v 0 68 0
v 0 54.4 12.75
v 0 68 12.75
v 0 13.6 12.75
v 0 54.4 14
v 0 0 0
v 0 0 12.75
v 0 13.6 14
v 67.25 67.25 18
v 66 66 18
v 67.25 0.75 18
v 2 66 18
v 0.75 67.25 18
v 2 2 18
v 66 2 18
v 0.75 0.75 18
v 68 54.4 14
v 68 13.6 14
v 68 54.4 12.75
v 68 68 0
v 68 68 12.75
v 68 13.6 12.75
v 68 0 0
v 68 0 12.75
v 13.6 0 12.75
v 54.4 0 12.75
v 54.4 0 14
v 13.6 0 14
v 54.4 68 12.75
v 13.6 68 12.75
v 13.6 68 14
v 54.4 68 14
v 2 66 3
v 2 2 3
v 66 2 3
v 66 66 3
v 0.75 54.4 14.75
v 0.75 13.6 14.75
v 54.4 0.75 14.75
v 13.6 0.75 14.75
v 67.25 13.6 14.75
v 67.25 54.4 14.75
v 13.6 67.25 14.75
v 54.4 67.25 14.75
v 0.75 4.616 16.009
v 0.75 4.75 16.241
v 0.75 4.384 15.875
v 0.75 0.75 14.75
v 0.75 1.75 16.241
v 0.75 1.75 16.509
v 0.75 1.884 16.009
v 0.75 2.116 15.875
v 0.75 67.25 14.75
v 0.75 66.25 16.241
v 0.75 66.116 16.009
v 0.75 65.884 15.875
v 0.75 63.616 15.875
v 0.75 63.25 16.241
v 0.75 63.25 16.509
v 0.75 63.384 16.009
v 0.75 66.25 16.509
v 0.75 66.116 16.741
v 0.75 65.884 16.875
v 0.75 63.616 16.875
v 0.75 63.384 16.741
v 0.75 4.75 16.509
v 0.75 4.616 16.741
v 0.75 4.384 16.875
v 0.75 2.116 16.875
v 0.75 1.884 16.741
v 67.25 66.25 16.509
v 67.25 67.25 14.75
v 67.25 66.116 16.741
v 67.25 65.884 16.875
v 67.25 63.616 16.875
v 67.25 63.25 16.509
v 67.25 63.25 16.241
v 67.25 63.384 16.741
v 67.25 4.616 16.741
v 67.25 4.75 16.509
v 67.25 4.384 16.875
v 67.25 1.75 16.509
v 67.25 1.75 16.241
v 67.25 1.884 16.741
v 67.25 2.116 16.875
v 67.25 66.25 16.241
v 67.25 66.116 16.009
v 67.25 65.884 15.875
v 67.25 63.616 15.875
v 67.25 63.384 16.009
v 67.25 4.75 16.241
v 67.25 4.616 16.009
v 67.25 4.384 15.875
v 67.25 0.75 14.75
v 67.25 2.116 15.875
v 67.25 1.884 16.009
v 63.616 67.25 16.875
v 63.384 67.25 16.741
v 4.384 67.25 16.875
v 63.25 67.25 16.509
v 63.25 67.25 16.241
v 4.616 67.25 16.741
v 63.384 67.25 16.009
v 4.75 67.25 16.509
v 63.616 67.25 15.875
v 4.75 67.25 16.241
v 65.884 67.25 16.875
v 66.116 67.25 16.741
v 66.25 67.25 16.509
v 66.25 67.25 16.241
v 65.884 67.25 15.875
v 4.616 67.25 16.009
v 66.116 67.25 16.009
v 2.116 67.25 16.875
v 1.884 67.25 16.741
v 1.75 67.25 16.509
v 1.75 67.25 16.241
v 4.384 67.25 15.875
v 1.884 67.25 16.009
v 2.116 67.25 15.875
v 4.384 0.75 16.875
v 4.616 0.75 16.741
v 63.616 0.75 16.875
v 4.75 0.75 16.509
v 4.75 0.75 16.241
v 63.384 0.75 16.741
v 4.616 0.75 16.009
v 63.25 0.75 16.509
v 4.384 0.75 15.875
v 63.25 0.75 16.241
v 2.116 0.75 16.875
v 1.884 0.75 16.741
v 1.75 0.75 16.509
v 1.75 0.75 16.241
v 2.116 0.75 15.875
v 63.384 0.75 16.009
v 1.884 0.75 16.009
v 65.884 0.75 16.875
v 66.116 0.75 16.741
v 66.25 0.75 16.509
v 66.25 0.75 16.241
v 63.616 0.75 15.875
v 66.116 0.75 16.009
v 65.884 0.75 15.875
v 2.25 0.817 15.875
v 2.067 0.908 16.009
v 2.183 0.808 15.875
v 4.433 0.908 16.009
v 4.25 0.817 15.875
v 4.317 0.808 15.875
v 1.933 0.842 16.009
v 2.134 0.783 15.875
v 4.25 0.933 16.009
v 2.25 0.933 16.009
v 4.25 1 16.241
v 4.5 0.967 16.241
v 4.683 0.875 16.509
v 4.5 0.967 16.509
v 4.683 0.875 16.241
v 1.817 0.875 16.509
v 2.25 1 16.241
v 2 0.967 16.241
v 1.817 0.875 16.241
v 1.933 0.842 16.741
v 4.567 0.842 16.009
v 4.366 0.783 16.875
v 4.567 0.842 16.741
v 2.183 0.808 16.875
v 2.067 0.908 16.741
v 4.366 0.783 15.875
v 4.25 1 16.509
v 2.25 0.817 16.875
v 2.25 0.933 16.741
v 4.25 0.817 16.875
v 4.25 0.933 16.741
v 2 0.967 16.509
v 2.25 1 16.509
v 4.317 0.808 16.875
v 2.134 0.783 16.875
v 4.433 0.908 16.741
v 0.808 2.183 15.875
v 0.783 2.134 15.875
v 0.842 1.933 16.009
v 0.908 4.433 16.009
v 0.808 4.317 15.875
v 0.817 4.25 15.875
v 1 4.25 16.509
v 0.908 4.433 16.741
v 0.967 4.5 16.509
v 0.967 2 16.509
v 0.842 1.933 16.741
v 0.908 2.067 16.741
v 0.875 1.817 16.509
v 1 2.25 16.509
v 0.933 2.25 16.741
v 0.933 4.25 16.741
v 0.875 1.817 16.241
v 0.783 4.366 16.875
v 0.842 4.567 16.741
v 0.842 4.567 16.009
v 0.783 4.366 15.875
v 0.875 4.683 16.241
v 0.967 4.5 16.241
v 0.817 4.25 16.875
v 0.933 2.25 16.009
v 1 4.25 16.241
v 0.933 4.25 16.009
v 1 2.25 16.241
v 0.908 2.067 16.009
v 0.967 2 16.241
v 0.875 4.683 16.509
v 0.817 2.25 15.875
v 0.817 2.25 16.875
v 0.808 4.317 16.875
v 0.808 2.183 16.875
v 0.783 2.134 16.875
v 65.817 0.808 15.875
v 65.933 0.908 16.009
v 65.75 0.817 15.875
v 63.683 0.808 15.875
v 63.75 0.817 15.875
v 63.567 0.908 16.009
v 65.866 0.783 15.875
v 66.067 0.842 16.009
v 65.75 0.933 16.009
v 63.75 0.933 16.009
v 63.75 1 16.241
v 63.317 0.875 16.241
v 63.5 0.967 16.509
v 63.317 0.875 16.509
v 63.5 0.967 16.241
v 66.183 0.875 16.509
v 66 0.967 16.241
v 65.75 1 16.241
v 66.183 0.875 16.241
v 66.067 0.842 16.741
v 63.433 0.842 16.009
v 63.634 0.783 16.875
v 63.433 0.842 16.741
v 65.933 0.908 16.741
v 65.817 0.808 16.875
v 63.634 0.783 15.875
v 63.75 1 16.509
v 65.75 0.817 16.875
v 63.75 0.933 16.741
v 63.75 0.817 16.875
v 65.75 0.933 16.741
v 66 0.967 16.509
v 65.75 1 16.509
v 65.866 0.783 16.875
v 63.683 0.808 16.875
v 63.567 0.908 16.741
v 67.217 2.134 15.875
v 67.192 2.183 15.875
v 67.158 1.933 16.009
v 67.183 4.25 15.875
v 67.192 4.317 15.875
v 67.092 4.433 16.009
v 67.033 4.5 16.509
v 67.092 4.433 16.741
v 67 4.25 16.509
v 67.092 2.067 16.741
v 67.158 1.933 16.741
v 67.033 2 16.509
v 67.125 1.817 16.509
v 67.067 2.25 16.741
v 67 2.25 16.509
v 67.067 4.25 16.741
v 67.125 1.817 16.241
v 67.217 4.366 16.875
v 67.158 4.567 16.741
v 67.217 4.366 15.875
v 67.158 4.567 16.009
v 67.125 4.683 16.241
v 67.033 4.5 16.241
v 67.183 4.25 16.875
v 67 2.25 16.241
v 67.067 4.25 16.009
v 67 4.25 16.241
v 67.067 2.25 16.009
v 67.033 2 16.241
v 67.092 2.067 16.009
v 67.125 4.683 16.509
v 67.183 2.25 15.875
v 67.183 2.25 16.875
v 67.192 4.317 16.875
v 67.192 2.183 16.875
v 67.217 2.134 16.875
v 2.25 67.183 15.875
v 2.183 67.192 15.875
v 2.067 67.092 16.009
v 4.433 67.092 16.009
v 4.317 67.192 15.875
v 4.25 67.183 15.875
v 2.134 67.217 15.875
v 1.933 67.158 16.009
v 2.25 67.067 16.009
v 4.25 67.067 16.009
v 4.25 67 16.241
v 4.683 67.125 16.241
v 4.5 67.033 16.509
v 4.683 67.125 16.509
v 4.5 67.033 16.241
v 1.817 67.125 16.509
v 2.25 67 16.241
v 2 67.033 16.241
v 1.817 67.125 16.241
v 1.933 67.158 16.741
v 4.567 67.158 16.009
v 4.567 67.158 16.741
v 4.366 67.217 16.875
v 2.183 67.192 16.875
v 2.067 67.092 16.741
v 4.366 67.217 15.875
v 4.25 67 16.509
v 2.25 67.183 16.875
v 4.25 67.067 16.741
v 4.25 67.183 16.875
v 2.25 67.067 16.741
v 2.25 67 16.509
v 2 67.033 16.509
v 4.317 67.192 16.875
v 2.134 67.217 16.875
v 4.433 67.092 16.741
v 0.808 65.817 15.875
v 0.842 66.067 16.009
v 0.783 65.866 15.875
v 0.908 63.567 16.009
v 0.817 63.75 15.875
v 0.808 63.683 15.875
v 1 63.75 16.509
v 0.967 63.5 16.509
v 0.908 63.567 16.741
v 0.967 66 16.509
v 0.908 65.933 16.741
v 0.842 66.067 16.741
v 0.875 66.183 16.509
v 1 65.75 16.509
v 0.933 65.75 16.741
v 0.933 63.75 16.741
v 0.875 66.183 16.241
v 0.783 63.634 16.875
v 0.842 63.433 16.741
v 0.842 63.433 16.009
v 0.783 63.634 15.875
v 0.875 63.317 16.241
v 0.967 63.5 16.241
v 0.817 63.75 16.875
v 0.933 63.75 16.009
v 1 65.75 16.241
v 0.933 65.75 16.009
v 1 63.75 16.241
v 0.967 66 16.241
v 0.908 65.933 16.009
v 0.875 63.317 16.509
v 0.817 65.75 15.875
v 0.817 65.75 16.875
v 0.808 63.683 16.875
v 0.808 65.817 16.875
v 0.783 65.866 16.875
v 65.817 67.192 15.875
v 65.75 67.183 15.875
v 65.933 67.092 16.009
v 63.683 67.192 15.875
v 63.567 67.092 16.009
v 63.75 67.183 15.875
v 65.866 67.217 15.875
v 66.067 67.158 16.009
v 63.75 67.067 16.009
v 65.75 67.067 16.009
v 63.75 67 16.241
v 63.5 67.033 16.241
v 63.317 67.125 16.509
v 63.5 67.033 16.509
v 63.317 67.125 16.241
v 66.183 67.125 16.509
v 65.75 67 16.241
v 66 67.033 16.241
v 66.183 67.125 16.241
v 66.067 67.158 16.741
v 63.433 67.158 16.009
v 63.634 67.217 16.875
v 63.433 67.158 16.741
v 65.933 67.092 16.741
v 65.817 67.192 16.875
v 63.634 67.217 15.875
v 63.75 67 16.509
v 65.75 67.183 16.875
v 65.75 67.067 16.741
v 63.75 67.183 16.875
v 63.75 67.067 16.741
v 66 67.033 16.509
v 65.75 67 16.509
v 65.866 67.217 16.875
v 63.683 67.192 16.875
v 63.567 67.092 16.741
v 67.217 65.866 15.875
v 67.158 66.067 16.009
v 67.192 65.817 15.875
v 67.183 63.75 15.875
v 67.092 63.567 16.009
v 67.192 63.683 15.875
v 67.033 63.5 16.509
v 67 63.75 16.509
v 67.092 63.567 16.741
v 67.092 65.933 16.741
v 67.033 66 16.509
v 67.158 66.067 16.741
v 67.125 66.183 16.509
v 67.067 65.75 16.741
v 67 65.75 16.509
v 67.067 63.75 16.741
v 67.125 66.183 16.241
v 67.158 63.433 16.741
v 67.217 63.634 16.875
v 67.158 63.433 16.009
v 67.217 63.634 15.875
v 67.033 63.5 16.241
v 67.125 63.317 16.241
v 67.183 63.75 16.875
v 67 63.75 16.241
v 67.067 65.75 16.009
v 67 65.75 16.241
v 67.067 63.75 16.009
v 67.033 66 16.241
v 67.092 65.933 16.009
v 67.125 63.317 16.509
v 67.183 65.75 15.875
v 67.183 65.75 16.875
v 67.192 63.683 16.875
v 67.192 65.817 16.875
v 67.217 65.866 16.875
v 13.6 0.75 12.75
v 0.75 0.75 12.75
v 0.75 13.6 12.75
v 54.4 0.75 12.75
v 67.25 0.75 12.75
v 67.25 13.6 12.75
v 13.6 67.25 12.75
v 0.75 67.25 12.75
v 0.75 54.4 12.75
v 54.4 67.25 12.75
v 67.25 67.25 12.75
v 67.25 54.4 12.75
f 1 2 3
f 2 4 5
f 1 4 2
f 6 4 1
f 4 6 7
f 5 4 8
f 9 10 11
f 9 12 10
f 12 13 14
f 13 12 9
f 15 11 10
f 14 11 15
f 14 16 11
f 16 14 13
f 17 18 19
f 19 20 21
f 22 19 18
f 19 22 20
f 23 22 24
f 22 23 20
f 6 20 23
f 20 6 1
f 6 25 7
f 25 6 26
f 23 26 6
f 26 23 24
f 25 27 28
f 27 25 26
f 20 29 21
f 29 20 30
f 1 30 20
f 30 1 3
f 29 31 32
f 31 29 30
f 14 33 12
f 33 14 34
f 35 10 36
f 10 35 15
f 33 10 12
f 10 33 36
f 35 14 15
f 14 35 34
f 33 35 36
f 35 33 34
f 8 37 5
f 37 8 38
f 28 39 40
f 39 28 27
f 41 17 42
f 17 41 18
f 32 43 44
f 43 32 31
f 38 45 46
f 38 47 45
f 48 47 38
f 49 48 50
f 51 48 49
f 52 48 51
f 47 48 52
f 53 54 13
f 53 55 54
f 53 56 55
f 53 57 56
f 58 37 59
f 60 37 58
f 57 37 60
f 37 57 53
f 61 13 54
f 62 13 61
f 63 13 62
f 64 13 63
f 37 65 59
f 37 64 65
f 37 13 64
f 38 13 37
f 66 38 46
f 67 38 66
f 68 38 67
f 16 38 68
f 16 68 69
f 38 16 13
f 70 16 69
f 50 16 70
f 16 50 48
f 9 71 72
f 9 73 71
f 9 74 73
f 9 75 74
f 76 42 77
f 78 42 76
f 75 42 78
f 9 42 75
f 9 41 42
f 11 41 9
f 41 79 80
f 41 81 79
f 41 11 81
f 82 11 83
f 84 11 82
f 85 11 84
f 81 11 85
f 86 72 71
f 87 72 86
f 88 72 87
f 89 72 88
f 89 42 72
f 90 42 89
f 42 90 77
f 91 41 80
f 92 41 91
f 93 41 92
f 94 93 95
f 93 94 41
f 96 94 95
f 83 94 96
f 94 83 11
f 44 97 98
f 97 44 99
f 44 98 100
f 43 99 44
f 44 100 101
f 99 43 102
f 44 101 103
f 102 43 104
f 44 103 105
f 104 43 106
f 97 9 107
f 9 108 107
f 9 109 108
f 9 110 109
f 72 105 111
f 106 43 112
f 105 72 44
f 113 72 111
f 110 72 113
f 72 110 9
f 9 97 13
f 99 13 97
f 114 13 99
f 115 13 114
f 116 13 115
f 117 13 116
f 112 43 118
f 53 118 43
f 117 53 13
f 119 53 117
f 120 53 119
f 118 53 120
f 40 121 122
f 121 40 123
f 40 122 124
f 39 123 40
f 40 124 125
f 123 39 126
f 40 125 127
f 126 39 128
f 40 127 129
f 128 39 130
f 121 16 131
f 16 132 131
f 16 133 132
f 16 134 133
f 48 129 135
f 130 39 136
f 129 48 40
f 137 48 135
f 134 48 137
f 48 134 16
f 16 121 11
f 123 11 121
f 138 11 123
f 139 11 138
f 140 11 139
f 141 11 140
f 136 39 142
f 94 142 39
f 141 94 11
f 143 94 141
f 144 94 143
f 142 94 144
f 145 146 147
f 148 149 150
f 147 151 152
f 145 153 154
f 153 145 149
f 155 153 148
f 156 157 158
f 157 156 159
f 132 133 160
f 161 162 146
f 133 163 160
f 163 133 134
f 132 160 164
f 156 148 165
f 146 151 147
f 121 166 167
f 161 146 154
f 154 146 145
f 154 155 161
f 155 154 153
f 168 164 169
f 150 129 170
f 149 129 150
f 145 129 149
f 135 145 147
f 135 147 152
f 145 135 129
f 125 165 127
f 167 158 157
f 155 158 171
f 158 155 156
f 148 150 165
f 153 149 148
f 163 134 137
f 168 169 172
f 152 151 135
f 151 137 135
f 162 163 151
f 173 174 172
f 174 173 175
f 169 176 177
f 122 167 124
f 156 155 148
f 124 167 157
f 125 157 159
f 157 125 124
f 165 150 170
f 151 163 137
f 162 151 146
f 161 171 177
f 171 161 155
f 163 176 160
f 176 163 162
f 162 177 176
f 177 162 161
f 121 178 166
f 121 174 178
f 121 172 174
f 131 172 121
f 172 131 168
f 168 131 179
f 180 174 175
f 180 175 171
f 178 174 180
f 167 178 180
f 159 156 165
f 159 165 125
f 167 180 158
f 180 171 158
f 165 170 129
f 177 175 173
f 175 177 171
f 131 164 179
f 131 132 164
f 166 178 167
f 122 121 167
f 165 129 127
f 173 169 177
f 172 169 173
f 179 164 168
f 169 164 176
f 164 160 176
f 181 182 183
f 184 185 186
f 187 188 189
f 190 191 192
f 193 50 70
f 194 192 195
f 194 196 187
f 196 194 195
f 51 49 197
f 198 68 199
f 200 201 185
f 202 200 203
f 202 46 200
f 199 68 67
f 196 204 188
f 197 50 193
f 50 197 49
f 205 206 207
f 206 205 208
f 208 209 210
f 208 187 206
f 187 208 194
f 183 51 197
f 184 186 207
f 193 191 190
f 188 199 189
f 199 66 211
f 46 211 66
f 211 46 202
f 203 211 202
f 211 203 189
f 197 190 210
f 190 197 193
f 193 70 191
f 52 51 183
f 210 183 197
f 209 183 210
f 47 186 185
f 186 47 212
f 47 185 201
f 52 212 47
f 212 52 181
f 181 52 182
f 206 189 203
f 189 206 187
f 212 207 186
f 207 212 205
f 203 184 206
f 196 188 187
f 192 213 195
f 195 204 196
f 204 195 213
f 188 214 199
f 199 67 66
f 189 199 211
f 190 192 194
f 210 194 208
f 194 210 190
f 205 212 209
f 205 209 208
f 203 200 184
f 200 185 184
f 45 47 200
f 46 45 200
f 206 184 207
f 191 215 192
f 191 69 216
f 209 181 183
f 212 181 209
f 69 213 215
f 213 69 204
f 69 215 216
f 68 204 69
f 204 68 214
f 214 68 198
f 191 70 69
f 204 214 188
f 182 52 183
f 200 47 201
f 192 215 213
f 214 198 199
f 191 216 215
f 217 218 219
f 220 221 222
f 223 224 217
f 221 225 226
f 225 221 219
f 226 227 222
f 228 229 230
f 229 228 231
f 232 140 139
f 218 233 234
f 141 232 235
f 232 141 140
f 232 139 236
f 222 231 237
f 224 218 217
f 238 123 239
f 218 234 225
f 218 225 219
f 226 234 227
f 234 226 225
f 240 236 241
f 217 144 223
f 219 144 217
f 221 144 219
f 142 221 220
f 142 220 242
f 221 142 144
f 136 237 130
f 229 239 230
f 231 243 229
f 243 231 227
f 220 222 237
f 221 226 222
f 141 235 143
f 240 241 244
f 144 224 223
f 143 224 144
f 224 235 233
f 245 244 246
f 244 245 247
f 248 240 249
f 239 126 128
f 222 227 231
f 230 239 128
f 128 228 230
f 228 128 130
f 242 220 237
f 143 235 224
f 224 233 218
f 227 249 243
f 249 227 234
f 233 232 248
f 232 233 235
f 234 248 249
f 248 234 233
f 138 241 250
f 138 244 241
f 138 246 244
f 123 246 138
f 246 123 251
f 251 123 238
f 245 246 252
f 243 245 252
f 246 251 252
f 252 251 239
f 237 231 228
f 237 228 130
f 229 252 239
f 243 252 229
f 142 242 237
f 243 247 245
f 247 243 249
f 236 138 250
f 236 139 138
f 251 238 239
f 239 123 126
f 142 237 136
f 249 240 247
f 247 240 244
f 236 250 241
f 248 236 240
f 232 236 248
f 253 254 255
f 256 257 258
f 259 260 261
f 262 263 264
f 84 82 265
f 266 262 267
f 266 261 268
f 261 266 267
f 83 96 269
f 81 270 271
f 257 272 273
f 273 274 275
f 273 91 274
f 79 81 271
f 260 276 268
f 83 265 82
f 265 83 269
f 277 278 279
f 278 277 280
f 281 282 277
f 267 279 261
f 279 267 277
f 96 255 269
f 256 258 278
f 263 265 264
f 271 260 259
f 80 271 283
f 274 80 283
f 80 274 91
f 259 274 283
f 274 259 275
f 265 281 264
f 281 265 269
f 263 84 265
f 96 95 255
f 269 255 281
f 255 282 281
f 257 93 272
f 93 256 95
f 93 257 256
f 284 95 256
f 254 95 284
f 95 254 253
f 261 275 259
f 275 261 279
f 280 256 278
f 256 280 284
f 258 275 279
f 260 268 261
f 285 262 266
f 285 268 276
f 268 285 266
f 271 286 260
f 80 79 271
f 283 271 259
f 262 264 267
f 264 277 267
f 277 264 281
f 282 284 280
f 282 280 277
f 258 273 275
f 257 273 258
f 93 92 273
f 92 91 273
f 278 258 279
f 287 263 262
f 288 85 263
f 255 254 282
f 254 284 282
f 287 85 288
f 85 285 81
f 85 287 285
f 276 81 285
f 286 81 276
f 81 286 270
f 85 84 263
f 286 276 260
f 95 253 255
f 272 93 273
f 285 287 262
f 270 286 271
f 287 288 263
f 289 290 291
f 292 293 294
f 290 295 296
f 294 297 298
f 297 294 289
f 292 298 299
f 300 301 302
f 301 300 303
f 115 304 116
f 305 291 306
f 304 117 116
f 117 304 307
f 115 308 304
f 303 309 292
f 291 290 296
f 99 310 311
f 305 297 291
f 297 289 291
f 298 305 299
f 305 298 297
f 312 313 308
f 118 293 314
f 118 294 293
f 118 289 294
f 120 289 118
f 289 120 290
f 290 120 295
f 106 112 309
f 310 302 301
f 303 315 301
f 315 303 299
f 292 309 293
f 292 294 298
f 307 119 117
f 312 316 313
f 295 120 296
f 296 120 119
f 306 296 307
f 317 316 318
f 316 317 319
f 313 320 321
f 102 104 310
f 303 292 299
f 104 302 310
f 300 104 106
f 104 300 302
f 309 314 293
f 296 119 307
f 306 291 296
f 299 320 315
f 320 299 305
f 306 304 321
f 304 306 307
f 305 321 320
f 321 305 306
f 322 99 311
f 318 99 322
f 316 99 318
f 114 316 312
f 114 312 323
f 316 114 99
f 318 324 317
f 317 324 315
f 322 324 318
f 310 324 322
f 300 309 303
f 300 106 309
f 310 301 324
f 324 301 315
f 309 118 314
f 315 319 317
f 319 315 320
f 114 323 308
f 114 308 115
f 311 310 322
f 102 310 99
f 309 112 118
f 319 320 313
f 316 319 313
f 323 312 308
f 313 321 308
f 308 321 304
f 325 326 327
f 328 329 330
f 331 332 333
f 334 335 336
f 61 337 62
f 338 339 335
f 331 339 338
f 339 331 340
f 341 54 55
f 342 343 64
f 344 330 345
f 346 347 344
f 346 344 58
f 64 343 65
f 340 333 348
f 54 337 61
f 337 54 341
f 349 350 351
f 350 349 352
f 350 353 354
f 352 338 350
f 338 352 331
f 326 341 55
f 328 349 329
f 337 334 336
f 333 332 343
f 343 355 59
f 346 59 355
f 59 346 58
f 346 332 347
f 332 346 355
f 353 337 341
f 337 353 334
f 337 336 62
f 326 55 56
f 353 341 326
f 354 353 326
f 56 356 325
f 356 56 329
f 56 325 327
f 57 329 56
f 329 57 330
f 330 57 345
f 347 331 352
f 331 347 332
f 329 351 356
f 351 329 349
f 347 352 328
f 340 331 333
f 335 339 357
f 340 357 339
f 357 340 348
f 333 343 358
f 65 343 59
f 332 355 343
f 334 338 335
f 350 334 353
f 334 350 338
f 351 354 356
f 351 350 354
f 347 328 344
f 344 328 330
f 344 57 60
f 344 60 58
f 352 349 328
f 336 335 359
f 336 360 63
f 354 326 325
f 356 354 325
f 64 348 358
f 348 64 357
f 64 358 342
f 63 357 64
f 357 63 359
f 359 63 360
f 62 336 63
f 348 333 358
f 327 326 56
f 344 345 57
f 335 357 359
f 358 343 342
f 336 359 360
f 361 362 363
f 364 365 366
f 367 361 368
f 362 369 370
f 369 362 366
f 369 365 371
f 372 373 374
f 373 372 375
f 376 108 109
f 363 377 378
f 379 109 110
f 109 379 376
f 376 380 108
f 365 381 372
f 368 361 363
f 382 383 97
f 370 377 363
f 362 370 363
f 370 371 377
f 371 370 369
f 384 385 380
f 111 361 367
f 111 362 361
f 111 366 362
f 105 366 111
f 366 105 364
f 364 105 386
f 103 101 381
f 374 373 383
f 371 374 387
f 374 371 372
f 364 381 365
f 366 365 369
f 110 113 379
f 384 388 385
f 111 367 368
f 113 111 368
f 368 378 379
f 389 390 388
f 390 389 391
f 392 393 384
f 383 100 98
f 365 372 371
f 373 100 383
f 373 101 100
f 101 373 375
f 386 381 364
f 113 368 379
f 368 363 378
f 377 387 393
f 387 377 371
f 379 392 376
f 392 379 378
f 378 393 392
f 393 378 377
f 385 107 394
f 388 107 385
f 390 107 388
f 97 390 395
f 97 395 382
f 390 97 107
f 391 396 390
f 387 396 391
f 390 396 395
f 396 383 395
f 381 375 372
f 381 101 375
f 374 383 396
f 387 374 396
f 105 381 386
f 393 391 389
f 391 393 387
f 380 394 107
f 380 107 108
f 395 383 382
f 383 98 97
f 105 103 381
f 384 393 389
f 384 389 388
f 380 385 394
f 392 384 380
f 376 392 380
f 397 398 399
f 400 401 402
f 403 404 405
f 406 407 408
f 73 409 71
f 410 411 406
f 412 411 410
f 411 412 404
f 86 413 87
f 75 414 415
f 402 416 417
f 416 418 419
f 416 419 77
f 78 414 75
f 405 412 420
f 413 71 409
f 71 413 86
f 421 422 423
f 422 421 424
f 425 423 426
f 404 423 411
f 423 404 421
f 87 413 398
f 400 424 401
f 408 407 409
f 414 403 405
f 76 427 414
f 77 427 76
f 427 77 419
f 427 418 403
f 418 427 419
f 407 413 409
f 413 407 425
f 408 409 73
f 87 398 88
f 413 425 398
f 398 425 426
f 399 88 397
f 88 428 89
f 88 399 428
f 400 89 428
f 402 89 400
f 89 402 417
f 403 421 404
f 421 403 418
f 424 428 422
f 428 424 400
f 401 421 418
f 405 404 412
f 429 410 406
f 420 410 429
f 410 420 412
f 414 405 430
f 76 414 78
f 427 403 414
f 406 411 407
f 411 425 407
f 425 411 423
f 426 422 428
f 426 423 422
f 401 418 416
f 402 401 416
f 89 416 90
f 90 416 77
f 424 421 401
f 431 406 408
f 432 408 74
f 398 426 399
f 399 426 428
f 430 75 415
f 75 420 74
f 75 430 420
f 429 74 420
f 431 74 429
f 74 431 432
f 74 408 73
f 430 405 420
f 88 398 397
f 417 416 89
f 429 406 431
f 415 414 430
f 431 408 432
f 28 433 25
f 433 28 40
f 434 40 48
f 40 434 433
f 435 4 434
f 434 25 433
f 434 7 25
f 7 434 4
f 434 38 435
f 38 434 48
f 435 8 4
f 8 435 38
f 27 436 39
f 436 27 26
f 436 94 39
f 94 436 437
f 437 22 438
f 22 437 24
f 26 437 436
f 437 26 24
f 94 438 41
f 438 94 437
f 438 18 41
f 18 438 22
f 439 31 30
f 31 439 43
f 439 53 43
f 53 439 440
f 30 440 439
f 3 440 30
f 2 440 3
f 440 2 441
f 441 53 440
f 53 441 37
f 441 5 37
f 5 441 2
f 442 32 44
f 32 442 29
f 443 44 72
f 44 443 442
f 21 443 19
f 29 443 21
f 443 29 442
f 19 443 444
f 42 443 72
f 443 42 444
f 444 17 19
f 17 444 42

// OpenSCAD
include <boardgame_insert_toolkit_lib.2.scad>;

// determines whether lids are output.
g_b_print_lid = false;

// determines whether boxes are output.
g_b_print_box = true; 

// Focus on one box
// g_isolated_print_box = ""; 

// Used to visualize how all of the boxes fit together. 
g_b_visualization = false;          
        
// this is the outer wall thickness. 
//Default = 1.5mm
g_wall_thickness = 1.5;

// The tolerance value is extra space put between planes of the lid and box that fit together.
// Increase the tolerance to loosen the fit and decrease it to tighten it.
//
// Note that the tolerance is applied exclusively to the lid.
// So if the lid is too tight or too loose, change this value ( up for looser fit, down for tighter fit ) and 
// you only need to reprint the lid.
// 
// The exception is the stackable box, where the bottom of the box is the lid of the box below,
// in which case the tolerance also affects that box bottom.
//
g_tolerance = 0.15;

// This adjusts the position of the lid detents downward. 
// The larger the value, the bigger the gap between the lid and the box.
g_tolerance_detents_pos = 0.1;

data =
[
    [   "jf_bizbox",
        [
            [ BOX_SIZE_XYZ,                                     [68, 68, 18] ],
            [ BOX_LID,
                [
                    [ LID_SOLID_B, f],
                    [LID_FIT_UNDER_B, f]
                ]
            ],
            [ BOX_COMPONENT,
                [
                    [CMP_COMPARTMENT_SIZE_XYZ,  [ 64, 64, 15] ],
                ]
            ],                            
        ]
    ],
];


MakeAll();
